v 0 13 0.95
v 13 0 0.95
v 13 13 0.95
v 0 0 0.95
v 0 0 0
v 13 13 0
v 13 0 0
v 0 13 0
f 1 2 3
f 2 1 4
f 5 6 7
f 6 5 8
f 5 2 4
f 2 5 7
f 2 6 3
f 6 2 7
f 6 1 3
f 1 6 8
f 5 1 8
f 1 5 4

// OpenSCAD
/* Warning, this is a very basic generator with a lot of approximation 
input data : [VGQFN, LRC, 13x13x0.95mm, 164, , A, C04-25390A]
generated by com.zoubworld.electronics.cad.model3d.Basic
Date : Sun Feb 15 10:50:49 CET 2026
*/

//body
color("black")
translate([0,0,0])
cube([13.0,13.0,0.95], center=false);
